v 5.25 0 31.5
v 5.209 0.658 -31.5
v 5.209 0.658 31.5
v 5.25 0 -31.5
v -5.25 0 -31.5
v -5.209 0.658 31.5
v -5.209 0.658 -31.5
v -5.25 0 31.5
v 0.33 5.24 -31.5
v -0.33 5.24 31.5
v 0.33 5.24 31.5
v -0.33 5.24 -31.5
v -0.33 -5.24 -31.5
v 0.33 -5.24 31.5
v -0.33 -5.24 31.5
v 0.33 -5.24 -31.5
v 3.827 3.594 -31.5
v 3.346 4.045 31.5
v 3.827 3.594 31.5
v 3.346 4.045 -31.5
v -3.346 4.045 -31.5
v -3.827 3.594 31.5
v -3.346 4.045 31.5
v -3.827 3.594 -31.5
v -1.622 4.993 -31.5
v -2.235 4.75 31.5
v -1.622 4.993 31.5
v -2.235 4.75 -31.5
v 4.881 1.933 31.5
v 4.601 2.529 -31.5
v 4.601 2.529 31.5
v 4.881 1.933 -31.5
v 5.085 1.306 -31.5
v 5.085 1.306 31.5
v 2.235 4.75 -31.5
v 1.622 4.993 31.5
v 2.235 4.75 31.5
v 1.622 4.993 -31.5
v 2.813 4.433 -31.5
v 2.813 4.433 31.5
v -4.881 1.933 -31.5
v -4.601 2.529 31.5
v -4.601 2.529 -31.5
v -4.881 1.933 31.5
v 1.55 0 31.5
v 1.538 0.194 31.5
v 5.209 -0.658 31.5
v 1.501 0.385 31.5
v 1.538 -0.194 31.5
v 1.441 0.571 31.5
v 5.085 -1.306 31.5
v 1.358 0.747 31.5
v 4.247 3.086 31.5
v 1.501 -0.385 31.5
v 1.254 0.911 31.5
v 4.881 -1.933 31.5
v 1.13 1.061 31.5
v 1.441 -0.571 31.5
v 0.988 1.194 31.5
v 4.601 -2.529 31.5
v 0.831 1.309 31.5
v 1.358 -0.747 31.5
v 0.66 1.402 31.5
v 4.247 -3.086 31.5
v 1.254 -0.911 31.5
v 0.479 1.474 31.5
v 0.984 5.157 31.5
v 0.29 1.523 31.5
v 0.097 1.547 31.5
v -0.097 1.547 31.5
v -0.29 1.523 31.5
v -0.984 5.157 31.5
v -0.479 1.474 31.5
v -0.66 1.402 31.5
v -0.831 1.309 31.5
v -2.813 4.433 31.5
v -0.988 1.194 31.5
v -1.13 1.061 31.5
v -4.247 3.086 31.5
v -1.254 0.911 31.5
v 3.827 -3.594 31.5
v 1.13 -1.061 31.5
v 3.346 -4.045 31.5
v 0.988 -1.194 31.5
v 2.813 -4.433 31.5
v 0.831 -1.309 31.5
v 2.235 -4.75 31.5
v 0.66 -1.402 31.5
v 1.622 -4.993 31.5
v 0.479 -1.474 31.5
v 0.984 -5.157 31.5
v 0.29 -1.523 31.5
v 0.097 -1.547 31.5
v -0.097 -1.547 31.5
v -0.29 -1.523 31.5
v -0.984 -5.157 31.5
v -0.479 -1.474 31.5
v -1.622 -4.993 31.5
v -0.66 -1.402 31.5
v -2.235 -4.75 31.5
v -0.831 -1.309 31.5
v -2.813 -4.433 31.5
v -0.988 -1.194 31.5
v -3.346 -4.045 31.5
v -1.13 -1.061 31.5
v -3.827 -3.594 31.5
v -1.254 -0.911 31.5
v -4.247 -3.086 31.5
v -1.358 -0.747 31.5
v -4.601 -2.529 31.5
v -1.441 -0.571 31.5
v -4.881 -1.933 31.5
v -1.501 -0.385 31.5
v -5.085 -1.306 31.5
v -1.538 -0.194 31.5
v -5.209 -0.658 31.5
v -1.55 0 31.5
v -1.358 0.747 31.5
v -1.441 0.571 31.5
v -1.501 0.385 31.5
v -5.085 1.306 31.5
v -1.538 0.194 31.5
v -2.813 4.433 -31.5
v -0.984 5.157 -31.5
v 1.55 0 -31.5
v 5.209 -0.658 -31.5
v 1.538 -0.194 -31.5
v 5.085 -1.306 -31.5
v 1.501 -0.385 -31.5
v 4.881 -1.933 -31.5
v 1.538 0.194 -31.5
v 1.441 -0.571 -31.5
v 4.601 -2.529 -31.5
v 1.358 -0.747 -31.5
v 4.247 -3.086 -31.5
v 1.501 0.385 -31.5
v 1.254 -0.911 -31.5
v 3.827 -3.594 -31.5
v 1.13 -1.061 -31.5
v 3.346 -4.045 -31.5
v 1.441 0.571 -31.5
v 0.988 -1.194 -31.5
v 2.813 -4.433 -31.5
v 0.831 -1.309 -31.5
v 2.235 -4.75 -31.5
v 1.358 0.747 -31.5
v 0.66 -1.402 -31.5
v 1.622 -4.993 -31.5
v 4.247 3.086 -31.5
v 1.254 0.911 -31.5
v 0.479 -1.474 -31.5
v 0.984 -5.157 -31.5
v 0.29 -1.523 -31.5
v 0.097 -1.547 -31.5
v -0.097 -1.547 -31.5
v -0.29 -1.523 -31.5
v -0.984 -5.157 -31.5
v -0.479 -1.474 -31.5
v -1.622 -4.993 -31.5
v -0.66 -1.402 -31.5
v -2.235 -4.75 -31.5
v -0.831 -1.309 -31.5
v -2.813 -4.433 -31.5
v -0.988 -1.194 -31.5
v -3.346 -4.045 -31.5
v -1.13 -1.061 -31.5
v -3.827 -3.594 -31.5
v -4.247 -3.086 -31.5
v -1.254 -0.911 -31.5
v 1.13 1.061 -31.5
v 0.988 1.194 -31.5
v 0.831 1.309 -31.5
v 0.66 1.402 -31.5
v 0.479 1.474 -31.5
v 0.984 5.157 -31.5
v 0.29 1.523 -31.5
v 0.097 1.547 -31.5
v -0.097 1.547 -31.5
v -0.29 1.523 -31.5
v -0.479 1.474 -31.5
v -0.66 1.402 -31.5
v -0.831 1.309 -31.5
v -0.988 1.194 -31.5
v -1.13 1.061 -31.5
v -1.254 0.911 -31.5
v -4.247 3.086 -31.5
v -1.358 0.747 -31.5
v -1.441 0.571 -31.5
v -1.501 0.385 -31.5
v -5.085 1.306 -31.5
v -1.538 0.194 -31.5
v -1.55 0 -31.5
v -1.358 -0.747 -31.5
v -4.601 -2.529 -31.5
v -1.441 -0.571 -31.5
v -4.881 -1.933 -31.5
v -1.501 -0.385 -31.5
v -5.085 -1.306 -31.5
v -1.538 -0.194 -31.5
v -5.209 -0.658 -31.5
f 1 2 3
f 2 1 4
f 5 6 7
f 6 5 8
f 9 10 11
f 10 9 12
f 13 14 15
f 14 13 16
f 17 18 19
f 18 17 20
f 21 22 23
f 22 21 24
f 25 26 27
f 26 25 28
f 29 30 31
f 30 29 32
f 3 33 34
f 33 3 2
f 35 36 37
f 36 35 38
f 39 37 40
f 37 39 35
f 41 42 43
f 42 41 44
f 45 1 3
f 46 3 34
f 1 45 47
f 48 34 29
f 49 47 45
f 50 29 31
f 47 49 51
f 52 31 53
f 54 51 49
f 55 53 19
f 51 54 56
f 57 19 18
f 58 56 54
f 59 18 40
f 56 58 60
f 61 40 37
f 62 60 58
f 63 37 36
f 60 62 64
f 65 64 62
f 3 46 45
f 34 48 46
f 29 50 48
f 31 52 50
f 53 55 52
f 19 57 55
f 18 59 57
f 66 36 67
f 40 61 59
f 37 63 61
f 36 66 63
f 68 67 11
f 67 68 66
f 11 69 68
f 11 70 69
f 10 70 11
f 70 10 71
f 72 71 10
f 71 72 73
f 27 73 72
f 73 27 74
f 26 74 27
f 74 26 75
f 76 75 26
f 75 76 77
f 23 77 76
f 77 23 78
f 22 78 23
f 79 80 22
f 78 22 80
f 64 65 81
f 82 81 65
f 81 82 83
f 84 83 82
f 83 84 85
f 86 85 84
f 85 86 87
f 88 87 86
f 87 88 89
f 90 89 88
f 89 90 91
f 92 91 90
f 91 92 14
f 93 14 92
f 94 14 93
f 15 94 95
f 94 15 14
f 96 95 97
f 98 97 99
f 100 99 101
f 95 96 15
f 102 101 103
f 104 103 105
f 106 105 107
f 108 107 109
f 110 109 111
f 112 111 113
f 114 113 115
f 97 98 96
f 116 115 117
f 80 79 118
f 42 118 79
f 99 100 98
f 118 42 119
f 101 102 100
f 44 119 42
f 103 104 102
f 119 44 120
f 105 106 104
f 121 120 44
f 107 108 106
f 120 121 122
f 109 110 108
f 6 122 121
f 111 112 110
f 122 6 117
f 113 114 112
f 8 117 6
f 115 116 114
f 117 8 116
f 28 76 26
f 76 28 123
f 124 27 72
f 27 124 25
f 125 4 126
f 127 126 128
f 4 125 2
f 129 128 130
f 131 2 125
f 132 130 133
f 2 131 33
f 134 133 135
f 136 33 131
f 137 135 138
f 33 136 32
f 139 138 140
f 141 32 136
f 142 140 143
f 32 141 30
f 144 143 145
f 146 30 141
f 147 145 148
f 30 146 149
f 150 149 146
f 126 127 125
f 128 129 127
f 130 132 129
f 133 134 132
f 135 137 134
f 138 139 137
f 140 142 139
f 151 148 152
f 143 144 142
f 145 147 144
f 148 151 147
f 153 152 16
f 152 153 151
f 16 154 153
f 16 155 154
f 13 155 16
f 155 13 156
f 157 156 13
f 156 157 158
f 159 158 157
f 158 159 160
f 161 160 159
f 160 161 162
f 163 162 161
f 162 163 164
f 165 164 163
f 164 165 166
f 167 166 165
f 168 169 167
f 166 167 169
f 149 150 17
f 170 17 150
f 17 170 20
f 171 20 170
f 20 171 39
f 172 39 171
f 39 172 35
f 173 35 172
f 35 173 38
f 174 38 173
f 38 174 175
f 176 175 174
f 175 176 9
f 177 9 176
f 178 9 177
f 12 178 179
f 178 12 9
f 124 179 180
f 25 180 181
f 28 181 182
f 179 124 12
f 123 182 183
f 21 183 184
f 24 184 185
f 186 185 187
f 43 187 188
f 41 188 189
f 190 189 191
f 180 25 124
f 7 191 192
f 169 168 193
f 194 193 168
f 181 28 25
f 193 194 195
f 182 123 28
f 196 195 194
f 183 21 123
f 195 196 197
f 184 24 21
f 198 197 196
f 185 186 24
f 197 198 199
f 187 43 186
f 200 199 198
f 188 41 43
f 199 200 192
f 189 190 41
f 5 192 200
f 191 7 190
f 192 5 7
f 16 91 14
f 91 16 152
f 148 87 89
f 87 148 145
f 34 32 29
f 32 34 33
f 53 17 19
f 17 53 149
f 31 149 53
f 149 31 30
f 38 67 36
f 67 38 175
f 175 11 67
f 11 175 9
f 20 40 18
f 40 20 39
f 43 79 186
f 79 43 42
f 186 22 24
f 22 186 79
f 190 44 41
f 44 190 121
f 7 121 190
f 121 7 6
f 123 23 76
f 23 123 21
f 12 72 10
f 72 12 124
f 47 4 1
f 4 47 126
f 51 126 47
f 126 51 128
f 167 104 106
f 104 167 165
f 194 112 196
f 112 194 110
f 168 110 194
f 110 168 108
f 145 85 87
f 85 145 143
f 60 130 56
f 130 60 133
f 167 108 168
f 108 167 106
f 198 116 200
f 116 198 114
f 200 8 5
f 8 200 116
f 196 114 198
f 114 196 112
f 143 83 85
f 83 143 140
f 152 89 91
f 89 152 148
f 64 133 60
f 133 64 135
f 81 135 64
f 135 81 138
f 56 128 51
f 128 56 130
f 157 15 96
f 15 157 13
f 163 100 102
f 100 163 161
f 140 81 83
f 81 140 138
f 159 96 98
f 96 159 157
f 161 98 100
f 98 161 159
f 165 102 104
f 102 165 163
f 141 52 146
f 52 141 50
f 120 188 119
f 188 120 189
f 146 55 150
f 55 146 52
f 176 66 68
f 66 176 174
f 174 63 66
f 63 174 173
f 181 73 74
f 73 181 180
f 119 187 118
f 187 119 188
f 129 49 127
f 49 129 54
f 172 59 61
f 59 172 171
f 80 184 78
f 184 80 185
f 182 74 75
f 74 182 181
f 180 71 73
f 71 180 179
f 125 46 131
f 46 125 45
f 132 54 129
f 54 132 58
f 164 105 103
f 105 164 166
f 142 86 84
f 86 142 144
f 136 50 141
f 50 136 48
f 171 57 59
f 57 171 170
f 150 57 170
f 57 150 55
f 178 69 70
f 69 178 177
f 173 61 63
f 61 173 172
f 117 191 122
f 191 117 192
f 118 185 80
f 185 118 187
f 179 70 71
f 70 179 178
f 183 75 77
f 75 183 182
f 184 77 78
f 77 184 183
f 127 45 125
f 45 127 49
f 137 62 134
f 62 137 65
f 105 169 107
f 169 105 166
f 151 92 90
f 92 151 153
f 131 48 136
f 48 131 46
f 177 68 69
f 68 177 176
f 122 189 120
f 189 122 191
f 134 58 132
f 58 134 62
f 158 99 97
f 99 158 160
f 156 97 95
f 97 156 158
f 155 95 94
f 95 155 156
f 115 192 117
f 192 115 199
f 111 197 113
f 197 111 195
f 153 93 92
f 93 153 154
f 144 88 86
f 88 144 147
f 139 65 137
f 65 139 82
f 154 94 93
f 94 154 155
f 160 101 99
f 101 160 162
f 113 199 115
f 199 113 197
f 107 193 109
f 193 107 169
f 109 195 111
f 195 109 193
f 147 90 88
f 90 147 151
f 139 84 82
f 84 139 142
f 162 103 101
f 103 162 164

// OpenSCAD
$fn = 50;


difference() {
	union() {
		translate(v = [0, 0, -31.5000000000]) {
			cylinder(h = 63, r = 5.2500000000);
		}
	}
	union() {
		translate(v = [0, 0, -100.0000000000]) {
			cylinder(h = 200, r = 1.5500000000);
		}
	}
}
